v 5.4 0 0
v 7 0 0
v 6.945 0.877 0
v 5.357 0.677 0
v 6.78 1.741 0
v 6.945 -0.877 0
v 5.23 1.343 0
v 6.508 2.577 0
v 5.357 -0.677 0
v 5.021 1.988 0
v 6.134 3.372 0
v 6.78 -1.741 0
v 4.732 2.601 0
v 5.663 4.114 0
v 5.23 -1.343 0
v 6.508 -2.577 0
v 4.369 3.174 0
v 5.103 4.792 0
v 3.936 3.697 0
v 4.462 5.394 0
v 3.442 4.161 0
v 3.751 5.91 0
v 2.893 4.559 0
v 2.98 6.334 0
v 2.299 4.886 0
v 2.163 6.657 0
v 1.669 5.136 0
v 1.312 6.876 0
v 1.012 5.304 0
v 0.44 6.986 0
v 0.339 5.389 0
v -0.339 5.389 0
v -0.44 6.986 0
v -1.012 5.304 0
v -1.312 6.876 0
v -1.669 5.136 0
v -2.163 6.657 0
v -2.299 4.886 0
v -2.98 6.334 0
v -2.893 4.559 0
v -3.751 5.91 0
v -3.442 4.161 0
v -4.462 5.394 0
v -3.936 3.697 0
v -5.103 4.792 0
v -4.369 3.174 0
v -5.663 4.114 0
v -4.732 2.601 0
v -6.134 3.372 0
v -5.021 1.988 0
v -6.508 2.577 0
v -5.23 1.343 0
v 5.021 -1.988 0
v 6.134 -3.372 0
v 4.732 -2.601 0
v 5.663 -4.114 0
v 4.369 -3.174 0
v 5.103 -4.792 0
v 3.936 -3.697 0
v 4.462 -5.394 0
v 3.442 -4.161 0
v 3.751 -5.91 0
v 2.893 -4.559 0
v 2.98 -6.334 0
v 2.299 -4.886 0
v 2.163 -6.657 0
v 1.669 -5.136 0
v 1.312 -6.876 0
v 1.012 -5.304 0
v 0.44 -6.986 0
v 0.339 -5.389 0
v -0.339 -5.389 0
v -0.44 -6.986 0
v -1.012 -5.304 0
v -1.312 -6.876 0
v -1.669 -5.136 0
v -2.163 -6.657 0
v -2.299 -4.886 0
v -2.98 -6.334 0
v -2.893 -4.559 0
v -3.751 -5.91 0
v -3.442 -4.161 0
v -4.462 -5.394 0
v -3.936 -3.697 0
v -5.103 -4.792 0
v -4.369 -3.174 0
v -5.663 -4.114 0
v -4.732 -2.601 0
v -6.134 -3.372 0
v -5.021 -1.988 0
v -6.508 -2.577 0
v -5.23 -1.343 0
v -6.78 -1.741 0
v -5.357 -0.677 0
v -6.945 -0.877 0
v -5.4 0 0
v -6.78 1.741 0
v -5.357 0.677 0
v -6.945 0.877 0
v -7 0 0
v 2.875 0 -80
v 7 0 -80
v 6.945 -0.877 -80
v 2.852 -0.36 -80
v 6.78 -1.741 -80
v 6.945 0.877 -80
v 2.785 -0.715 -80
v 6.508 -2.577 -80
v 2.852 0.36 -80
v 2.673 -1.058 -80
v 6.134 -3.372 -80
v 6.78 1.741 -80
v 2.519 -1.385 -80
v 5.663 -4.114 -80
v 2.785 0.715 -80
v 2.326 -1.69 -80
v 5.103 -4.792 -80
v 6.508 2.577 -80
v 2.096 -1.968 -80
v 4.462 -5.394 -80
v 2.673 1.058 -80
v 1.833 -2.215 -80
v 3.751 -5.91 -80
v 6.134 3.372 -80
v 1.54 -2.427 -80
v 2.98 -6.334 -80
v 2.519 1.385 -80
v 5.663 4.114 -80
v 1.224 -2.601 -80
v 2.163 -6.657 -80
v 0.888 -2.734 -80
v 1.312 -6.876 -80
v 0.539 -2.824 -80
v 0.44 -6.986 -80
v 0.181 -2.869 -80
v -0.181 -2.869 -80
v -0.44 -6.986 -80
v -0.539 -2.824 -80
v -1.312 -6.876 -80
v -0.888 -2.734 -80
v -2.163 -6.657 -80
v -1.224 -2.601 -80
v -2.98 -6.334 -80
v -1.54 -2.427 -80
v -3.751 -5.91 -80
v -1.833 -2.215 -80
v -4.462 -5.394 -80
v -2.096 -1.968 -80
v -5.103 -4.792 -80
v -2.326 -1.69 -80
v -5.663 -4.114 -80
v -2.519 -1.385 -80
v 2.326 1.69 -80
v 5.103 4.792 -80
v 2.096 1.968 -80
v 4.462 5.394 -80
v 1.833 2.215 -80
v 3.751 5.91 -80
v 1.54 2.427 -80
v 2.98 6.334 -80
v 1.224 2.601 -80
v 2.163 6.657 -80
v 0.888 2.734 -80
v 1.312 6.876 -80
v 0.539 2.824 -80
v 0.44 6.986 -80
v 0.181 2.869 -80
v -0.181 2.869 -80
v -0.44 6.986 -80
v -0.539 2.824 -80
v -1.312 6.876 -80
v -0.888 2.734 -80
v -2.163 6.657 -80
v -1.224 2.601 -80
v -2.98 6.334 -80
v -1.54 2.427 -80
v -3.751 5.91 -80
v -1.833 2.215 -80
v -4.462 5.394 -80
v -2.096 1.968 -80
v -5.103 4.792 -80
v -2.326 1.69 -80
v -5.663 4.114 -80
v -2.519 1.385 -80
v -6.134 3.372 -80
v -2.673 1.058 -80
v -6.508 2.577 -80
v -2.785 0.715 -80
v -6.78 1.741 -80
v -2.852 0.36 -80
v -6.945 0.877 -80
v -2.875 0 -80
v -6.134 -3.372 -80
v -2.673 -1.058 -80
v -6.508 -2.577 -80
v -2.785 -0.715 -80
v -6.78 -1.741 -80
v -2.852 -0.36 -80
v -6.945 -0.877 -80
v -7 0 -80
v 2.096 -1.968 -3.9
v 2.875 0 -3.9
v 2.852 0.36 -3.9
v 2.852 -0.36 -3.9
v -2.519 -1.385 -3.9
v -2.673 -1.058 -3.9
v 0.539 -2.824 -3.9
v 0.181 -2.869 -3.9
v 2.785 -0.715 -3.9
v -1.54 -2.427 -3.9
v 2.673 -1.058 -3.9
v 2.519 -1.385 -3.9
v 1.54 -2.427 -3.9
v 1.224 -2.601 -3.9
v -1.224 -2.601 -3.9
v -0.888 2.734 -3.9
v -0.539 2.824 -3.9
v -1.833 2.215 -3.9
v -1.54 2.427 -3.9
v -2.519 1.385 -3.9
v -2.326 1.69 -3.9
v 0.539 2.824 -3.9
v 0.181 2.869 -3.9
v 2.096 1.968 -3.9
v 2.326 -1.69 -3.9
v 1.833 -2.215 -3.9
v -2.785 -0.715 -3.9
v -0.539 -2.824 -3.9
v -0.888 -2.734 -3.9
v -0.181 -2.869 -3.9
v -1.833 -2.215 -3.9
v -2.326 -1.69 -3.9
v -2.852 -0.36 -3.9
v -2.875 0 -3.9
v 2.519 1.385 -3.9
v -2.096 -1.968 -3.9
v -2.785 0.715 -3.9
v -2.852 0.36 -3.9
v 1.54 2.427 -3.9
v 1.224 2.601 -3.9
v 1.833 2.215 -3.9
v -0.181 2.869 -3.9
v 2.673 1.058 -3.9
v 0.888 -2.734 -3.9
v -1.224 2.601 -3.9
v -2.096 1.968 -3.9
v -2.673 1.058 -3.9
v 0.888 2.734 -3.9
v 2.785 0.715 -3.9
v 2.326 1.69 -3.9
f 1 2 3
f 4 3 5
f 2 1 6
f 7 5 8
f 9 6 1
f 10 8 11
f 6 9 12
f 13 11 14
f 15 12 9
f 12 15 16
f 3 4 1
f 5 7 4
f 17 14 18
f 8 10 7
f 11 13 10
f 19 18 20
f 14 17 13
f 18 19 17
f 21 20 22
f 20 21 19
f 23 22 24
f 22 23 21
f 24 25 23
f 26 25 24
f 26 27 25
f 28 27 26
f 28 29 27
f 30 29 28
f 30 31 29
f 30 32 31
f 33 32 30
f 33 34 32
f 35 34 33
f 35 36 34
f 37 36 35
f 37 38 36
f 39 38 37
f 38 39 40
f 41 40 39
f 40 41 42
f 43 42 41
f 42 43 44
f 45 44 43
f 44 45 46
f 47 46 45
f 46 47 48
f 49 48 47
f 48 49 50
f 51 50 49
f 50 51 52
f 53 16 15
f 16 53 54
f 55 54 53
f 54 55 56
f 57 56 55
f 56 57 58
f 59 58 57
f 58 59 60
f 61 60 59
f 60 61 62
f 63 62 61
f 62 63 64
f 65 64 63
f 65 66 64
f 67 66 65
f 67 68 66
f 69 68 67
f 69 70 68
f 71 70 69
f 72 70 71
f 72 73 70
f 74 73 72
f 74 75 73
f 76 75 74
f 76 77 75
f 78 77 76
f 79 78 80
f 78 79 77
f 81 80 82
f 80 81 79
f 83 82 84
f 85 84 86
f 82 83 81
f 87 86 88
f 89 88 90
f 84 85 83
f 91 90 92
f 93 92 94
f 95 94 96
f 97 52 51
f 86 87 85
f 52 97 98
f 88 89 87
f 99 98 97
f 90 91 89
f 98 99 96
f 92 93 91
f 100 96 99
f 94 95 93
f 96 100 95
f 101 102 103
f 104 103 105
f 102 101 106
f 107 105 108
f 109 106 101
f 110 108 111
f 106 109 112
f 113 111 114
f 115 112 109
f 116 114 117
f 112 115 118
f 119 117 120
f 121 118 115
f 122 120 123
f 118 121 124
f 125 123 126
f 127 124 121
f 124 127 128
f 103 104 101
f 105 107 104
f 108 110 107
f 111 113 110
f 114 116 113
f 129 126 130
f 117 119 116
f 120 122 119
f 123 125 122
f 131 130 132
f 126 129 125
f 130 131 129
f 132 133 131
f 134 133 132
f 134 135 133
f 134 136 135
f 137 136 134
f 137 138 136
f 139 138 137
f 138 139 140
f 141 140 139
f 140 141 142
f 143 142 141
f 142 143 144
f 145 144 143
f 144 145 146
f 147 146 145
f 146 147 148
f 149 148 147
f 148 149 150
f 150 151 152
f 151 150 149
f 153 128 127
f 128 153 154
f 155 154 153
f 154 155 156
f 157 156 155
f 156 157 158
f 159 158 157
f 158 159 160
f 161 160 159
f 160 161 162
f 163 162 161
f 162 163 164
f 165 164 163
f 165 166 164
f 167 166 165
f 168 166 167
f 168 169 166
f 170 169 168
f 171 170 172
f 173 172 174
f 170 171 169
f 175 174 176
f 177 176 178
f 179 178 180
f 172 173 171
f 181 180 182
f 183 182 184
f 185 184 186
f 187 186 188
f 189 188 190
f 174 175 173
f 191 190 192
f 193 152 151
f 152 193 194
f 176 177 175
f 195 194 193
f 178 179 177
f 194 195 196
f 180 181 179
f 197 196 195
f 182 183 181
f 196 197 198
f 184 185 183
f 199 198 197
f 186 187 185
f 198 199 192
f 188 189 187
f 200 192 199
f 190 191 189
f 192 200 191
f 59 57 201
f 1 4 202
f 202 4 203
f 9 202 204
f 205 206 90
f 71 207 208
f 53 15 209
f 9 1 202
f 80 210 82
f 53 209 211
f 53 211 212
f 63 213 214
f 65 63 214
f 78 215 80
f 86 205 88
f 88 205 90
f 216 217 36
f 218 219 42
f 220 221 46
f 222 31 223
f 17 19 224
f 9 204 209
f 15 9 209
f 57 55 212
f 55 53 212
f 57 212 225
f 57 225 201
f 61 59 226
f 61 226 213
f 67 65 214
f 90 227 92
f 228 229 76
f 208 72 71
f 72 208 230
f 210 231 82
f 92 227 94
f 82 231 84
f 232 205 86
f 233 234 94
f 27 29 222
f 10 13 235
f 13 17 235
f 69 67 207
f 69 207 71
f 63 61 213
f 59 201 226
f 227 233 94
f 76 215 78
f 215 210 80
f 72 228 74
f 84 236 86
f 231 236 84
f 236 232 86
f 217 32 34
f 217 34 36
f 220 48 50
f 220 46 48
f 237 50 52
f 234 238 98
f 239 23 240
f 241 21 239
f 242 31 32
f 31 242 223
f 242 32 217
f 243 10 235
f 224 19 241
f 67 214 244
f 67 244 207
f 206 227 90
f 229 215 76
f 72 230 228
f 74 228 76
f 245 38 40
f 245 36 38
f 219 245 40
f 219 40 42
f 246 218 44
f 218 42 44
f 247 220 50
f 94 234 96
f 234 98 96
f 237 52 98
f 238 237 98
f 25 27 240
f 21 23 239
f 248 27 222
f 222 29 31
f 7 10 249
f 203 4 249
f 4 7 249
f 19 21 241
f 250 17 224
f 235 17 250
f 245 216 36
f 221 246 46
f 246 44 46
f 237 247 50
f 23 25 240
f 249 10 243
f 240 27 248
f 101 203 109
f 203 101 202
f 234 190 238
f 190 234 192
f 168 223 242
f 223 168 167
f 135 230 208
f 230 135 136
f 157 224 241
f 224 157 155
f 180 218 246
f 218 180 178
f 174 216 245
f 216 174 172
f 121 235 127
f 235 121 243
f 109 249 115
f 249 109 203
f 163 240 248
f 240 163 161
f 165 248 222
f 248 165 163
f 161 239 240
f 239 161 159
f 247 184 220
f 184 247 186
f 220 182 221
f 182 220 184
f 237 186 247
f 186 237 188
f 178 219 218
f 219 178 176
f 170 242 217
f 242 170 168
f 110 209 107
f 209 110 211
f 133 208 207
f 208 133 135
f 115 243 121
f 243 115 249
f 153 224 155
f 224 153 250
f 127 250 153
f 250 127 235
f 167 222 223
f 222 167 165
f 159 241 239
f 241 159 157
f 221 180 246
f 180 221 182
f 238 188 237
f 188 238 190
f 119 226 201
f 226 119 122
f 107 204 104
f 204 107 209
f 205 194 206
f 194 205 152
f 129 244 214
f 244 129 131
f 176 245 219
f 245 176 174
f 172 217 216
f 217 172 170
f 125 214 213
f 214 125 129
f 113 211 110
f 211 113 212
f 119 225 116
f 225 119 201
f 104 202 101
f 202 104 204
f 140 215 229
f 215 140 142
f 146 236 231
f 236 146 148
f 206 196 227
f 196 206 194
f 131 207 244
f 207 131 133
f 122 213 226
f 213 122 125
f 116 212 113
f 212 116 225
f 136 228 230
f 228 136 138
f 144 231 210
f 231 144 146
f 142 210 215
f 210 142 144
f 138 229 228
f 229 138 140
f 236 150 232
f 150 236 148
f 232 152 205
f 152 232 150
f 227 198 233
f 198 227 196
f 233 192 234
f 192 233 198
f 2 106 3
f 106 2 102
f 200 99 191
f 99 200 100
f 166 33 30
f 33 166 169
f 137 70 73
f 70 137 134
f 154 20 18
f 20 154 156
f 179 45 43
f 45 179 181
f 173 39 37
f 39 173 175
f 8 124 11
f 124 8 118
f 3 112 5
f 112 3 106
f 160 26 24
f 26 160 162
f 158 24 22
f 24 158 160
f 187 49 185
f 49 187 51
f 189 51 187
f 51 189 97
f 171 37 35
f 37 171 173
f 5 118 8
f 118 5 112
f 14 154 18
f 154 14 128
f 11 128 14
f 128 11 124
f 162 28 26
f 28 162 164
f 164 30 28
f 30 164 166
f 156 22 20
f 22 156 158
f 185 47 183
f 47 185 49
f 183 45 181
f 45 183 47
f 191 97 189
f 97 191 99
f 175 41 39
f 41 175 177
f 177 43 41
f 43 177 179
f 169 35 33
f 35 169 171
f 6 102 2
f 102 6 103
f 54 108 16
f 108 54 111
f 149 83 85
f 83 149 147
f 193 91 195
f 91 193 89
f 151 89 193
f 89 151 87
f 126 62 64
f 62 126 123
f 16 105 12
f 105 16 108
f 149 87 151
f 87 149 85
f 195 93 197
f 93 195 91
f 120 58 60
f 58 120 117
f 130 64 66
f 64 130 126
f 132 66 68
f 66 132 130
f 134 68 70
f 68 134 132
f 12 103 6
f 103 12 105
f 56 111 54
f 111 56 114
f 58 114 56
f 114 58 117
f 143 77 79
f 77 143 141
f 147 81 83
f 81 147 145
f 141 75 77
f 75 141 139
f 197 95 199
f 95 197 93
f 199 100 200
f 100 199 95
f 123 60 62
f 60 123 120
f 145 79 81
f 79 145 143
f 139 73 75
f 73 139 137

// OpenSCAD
$fn = 50;


difference() {
	union() {
		translate(v = [0, 0, -80.0000000000]) {
			cylinder(h = 80, r = 7.0000000000);
		}
		cylinder(h = 0, r = 13.0000000000);
	}
	union() {
		translate(v = [0, 0, 0]) {
			rotate(a = [0, 0, 0]) {
				difference() {
					union() {
						#translate(v = [0, 0, -80.0000000000]) {
							cylinder(h = 80, r = 2.6000000000);
						}
						#translate(v = [0, 0, -3.9000000000]) {
							cylinder(h = 3.9000000000, r1 = 2.8750000000, r2 = 5.4000000000);
						}
						#translate(v = [0, 0, -80.0000000000]) {
							cylinder(h = 80, r = 2.8750000000);
						}
						#translate(v = [0, 0, -80.0000000000]) {
							cylinder(h = 80, r = 2.6000000000);
						}
					}
					union();
				}
			}
		}
	}
}
